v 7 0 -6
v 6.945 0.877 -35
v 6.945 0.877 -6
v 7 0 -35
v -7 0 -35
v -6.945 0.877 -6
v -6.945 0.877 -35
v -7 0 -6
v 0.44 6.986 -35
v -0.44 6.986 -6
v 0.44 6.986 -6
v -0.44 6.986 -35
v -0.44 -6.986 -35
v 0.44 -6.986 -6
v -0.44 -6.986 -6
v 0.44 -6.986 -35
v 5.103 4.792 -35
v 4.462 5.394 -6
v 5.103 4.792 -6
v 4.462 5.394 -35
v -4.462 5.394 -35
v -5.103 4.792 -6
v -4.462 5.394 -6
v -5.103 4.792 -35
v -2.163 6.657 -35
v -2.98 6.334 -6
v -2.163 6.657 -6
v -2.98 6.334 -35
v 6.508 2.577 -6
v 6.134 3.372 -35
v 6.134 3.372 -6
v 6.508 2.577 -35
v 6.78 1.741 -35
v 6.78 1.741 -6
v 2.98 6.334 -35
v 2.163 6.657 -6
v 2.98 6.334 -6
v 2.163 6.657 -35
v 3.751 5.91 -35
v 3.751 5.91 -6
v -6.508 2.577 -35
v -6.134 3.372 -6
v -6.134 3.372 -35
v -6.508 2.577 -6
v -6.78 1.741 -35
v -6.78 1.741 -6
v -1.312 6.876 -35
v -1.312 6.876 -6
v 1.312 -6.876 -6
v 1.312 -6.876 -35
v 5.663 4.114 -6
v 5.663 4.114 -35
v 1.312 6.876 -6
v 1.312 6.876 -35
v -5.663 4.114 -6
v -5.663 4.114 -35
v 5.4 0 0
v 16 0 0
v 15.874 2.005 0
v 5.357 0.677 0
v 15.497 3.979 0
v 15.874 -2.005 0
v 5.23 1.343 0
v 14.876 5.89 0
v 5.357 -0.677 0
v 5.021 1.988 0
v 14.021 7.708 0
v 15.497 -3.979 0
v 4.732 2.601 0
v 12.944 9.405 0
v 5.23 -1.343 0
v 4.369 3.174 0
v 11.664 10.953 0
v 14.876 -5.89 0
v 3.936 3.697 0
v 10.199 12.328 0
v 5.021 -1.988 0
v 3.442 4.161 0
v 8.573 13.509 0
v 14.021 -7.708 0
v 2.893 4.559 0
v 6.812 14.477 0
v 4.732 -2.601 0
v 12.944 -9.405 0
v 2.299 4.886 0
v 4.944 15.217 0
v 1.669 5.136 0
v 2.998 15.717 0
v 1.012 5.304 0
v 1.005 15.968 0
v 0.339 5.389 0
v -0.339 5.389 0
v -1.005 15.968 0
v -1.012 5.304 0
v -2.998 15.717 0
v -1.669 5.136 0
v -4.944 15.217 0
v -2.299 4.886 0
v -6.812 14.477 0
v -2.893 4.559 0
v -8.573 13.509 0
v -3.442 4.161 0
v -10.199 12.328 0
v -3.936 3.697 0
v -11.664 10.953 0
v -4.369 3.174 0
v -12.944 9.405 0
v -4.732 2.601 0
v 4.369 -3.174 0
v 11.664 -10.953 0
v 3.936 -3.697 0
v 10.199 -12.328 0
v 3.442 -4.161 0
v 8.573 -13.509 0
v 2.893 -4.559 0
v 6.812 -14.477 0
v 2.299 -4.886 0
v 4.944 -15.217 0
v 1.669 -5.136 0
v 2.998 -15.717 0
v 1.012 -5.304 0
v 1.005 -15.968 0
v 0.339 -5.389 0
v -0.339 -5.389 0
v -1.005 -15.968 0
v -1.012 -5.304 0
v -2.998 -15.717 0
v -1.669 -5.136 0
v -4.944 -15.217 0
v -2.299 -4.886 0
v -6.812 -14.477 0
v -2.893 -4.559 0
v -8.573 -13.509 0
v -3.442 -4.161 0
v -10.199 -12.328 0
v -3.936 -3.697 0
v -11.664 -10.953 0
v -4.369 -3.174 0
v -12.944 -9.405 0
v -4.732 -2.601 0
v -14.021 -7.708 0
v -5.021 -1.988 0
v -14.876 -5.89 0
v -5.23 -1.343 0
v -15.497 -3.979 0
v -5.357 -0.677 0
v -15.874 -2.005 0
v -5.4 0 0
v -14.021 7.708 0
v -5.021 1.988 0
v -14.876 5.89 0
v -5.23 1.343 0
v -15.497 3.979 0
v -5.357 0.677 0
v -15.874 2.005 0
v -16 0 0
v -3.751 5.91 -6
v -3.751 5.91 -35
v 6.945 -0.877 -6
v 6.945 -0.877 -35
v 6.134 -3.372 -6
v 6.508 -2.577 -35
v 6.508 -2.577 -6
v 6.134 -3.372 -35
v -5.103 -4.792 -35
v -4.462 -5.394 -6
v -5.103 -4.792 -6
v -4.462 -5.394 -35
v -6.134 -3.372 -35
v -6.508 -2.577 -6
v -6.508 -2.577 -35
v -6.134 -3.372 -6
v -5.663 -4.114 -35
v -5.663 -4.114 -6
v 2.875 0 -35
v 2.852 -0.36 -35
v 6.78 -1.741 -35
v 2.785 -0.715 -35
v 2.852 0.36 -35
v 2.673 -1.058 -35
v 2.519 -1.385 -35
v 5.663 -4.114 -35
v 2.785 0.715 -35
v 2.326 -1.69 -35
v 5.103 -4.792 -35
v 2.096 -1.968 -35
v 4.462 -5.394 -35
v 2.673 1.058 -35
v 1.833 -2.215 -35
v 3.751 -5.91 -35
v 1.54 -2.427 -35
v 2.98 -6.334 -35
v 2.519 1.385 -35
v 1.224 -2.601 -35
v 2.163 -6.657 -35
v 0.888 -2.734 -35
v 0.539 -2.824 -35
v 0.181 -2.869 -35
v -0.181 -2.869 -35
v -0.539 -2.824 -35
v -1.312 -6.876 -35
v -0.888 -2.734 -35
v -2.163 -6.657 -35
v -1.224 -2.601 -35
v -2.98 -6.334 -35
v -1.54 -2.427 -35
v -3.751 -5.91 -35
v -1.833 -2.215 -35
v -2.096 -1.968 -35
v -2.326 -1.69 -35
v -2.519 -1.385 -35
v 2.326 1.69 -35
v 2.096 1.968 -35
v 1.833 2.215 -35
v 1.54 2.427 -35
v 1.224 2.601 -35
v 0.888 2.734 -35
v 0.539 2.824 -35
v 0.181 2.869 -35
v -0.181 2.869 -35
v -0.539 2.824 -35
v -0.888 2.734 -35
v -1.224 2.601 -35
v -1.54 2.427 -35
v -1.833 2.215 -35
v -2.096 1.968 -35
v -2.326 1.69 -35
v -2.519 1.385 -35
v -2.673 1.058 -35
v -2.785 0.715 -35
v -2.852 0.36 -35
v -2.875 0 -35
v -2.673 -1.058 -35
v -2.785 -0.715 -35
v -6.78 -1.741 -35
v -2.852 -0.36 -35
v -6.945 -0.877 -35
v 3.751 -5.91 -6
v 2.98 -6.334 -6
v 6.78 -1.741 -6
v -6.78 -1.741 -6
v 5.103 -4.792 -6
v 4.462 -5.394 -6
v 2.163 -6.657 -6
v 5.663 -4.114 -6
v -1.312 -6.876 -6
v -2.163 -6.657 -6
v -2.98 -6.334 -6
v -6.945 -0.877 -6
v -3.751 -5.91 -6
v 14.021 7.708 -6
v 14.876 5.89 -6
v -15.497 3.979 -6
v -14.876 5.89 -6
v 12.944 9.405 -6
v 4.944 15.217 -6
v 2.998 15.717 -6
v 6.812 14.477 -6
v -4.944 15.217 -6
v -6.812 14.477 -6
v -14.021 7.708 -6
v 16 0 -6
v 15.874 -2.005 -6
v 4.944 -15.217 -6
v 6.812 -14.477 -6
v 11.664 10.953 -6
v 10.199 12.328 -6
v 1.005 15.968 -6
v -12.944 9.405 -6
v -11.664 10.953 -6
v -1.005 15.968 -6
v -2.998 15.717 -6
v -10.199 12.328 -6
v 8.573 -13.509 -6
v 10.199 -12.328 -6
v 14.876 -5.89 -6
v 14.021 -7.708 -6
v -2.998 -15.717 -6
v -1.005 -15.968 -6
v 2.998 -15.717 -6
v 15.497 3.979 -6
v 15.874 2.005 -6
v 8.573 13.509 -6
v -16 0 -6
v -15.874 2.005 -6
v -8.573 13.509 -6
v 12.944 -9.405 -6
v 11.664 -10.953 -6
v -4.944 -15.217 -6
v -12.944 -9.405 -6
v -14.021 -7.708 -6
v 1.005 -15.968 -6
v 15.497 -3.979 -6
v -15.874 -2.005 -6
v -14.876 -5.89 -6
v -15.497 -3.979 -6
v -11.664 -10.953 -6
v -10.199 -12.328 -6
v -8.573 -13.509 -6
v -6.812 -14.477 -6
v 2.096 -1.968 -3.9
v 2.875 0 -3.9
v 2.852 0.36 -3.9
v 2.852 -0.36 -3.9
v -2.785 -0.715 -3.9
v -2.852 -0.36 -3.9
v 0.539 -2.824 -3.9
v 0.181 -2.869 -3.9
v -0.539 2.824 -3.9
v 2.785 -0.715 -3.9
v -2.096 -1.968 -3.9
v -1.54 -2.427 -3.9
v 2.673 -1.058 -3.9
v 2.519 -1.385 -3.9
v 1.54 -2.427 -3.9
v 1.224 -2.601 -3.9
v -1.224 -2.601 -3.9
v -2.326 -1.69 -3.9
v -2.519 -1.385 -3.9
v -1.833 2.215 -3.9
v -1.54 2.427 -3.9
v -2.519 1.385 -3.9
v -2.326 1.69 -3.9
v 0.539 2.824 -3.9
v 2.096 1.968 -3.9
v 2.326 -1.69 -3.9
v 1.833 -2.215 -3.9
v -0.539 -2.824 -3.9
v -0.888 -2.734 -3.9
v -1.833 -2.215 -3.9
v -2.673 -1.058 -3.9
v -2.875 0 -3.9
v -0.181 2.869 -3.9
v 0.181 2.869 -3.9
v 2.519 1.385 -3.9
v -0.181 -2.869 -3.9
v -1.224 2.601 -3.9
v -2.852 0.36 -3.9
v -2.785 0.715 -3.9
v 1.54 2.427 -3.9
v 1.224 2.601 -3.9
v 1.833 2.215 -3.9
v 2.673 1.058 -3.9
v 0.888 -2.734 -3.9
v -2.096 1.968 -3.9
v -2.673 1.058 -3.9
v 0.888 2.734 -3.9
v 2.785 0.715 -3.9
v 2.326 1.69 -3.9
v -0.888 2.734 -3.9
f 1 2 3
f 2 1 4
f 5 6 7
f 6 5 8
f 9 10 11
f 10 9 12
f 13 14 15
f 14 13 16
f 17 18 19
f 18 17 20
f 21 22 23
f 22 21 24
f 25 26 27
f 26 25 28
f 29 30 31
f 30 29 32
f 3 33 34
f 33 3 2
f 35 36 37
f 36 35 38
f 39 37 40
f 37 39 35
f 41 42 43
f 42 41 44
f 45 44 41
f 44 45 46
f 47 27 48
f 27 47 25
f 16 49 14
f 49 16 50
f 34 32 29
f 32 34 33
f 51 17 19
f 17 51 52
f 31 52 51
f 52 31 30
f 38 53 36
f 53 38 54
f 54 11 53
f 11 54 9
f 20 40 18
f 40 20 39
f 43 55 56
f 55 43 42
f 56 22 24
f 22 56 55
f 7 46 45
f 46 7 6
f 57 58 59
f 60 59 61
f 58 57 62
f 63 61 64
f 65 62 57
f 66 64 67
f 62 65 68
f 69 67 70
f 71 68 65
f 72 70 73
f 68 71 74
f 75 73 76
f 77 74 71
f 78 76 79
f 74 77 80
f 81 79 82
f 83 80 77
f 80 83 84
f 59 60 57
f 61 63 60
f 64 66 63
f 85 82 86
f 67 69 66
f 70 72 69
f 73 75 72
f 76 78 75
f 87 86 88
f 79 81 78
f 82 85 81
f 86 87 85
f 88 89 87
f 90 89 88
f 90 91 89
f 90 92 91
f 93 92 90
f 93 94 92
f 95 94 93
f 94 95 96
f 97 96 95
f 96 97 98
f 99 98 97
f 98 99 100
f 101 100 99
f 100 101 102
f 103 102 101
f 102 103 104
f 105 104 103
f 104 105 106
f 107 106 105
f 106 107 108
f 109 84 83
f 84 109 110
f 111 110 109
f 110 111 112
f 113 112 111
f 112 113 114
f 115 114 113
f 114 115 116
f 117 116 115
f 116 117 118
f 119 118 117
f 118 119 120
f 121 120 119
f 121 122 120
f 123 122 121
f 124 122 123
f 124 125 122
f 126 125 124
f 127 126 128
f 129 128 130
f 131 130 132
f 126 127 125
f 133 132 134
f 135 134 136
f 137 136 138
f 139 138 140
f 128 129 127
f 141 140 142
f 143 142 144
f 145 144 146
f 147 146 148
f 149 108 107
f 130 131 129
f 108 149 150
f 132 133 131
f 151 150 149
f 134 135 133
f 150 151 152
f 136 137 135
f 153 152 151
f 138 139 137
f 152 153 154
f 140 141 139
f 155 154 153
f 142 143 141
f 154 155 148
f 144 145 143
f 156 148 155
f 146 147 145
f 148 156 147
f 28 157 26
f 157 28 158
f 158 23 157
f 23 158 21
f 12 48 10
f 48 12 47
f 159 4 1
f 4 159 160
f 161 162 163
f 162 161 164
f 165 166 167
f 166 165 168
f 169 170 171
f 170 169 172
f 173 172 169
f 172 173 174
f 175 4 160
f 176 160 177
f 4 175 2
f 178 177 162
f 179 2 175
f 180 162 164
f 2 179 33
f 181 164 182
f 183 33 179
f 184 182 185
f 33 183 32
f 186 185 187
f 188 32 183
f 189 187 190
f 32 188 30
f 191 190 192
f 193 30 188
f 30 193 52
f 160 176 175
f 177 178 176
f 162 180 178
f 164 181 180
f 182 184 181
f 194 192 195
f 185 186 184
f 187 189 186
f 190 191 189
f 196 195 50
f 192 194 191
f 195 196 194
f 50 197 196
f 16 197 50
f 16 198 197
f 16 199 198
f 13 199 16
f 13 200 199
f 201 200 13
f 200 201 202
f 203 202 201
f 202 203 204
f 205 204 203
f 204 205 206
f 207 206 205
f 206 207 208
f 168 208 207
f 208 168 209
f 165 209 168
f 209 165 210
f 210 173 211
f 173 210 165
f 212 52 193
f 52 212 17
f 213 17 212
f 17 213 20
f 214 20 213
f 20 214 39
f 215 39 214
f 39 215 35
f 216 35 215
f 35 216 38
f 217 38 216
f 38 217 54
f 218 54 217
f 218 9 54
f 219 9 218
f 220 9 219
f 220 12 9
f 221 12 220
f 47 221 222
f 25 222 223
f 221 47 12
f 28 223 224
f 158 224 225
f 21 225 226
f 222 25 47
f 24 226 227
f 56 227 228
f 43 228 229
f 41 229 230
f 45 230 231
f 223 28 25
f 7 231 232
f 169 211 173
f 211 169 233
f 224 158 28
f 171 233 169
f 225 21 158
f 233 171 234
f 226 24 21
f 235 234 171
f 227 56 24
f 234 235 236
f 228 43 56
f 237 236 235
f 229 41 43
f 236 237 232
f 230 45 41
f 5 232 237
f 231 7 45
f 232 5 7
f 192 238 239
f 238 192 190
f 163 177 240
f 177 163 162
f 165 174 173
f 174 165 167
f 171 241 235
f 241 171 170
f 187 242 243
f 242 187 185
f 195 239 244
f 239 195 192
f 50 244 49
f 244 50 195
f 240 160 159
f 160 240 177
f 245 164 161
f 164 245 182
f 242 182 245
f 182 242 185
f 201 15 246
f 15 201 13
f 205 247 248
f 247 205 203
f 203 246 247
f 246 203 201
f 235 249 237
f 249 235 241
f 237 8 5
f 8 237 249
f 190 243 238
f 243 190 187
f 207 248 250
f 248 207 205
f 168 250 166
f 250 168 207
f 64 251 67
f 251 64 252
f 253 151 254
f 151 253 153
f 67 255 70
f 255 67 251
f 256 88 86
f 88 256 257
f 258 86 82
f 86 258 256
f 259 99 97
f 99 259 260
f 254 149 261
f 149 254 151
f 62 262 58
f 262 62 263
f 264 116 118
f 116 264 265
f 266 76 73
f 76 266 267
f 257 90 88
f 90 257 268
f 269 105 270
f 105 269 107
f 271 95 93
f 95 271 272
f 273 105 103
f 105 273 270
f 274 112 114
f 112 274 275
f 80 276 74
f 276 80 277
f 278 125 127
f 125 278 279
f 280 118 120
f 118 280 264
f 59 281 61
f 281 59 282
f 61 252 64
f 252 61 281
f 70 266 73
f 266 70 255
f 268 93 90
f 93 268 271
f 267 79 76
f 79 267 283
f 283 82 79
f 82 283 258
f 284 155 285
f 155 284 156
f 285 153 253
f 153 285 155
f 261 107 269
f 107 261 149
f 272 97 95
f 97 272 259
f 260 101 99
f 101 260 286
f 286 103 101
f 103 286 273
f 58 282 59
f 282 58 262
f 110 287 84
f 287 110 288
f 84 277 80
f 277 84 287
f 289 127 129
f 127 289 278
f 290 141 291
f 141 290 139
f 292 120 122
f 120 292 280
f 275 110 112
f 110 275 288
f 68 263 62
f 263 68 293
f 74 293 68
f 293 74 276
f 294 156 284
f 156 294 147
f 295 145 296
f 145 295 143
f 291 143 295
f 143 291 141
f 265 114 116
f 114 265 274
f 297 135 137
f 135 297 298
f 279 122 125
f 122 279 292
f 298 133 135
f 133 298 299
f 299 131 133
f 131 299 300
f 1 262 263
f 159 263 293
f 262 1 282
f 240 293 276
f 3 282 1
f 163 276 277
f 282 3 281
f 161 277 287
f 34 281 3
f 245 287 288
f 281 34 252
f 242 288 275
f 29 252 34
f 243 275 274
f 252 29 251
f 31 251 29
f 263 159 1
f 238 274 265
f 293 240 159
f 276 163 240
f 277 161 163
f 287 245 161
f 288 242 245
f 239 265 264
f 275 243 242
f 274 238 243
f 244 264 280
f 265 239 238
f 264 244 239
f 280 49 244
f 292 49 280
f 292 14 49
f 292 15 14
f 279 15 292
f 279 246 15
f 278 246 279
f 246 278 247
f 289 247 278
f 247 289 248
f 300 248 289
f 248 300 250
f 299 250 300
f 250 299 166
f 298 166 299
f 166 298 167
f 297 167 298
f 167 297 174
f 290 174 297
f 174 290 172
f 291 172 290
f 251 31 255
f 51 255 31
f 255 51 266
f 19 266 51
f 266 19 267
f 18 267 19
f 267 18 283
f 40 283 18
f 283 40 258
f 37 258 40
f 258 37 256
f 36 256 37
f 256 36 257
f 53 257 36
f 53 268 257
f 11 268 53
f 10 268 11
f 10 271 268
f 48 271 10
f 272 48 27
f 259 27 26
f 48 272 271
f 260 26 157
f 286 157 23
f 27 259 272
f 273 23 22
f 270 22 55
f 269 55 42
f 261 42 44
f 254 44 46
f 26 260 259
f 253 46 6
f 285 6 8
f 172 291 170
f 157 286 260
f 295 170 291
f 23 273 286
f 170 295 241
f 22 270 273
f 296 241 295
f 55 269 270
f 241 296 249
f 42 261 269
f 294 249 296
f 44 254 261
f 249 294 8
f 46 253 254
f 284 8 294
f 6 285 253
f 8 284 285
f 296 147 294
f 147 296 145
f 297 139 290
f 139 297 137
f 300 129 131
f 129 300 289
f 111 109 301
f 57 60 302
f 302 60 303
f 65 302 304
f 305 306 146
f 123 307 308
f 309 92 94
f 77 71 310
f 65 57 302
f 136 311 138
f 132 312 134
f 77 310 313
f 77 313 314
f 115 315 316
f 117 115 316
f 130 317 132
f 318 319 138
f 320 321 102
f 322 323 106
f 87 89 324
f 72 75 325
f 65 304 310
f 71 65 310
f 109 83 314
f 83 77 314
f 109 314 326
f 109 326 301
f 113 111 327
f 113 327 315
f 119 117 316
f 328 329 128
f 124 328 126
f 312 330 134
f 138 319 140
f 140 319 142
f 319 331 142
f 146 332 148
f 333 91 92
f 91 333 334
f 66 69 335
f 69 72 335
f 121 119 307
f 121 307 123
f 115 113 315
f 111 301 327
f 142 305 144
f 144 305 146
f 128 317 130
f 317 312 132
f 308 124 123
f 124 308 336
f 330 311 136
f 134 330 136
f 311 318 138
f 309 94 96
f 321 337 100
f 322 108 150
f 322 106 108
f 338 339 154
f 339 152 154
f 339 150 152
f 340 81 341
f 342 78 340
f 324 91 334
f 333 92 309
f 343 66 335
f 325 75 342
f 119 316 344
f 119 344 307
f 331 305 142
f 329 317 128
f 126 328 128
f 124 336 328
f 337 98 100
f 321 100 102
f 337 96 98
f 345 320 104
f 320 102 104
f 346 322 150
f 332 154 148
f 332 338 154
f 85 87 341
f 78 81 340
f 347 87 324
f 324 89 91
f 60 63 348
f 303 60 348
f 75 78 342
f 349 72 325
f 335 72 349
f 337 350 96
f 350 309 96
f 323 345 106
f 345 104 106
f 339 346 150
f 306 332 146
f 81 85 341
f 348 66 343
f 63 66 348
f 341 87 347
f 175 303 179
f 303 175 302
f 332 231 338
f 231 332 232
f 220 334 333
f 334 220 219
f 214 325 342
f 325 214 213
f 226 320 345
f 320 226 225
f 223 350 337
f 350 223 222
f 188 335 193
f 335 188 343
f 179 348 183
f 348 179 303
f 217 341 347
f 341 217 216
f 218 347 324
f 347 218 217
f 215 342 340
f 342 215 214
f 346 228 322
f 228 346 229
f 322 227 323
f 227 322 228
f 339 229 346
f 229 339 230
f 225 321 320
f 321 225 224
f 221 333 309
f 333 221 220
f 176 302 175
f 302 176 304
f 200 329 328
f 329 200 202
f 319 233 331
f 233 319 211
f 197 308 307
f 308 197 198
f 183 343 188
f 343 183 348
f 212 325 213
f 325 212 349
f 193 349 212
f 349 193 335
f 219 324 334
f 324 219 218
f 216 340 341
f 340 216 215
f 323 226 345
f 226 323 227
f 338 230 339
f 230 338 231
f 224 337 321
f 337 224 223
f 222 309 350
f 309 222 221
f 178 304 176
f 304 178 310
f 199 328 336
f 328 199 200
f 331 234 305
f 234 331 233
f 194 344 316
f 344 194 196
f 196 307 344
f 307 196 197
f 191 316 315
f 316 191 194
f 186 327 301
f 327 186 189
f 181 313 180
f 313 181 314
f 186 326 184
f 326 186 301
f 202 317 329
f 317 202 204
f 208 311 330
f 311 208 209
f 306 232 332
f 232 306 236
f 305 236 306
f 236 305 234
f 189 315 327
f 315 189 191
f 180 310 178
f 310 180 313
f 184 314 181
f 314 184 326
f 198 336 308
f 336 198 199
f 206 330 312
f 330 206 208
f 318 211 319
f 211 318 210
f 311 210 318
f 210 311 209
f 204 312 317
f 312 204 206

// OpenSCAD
$fn = 50;


difference() {
	union() {
		translate(v = [0, 0, -35.0000000000]) {
			cylinder(h = 35, r = 7.0000000000);
		}
		translate(v = [0, 0, -6.0000000000]) {
			cylinder(h = 6, r = 16.0000000000);
		}
	}
	union() {
		translate(v = [0, 0, 0]) {
			rotate(a = [0, 0, 0]) {
				difference() {
					union() {
						#translate(v = [0, 0, -35.0000000000]) {
							cylinder(h = 35, r = 2.6000000000);
						}
						#translate(v = [0, 0, -3.9000000000]) {
							cylinder(h = 3.9000000000, r = 7.0000000000, r1 = 2.8750000000, r2 = 5.4000000000);
						}
						#translate(v = [0, 0, -35.0000000000]) {
							cylinder(h = 35, r = 2.8750000000);
						}
						#translate(v = [0, 0, -35.0000000000]) {
							cylinder(h = 35, r = 2.6000000000);
						}
					}
					union();
				}
			}
		}
	}
}
